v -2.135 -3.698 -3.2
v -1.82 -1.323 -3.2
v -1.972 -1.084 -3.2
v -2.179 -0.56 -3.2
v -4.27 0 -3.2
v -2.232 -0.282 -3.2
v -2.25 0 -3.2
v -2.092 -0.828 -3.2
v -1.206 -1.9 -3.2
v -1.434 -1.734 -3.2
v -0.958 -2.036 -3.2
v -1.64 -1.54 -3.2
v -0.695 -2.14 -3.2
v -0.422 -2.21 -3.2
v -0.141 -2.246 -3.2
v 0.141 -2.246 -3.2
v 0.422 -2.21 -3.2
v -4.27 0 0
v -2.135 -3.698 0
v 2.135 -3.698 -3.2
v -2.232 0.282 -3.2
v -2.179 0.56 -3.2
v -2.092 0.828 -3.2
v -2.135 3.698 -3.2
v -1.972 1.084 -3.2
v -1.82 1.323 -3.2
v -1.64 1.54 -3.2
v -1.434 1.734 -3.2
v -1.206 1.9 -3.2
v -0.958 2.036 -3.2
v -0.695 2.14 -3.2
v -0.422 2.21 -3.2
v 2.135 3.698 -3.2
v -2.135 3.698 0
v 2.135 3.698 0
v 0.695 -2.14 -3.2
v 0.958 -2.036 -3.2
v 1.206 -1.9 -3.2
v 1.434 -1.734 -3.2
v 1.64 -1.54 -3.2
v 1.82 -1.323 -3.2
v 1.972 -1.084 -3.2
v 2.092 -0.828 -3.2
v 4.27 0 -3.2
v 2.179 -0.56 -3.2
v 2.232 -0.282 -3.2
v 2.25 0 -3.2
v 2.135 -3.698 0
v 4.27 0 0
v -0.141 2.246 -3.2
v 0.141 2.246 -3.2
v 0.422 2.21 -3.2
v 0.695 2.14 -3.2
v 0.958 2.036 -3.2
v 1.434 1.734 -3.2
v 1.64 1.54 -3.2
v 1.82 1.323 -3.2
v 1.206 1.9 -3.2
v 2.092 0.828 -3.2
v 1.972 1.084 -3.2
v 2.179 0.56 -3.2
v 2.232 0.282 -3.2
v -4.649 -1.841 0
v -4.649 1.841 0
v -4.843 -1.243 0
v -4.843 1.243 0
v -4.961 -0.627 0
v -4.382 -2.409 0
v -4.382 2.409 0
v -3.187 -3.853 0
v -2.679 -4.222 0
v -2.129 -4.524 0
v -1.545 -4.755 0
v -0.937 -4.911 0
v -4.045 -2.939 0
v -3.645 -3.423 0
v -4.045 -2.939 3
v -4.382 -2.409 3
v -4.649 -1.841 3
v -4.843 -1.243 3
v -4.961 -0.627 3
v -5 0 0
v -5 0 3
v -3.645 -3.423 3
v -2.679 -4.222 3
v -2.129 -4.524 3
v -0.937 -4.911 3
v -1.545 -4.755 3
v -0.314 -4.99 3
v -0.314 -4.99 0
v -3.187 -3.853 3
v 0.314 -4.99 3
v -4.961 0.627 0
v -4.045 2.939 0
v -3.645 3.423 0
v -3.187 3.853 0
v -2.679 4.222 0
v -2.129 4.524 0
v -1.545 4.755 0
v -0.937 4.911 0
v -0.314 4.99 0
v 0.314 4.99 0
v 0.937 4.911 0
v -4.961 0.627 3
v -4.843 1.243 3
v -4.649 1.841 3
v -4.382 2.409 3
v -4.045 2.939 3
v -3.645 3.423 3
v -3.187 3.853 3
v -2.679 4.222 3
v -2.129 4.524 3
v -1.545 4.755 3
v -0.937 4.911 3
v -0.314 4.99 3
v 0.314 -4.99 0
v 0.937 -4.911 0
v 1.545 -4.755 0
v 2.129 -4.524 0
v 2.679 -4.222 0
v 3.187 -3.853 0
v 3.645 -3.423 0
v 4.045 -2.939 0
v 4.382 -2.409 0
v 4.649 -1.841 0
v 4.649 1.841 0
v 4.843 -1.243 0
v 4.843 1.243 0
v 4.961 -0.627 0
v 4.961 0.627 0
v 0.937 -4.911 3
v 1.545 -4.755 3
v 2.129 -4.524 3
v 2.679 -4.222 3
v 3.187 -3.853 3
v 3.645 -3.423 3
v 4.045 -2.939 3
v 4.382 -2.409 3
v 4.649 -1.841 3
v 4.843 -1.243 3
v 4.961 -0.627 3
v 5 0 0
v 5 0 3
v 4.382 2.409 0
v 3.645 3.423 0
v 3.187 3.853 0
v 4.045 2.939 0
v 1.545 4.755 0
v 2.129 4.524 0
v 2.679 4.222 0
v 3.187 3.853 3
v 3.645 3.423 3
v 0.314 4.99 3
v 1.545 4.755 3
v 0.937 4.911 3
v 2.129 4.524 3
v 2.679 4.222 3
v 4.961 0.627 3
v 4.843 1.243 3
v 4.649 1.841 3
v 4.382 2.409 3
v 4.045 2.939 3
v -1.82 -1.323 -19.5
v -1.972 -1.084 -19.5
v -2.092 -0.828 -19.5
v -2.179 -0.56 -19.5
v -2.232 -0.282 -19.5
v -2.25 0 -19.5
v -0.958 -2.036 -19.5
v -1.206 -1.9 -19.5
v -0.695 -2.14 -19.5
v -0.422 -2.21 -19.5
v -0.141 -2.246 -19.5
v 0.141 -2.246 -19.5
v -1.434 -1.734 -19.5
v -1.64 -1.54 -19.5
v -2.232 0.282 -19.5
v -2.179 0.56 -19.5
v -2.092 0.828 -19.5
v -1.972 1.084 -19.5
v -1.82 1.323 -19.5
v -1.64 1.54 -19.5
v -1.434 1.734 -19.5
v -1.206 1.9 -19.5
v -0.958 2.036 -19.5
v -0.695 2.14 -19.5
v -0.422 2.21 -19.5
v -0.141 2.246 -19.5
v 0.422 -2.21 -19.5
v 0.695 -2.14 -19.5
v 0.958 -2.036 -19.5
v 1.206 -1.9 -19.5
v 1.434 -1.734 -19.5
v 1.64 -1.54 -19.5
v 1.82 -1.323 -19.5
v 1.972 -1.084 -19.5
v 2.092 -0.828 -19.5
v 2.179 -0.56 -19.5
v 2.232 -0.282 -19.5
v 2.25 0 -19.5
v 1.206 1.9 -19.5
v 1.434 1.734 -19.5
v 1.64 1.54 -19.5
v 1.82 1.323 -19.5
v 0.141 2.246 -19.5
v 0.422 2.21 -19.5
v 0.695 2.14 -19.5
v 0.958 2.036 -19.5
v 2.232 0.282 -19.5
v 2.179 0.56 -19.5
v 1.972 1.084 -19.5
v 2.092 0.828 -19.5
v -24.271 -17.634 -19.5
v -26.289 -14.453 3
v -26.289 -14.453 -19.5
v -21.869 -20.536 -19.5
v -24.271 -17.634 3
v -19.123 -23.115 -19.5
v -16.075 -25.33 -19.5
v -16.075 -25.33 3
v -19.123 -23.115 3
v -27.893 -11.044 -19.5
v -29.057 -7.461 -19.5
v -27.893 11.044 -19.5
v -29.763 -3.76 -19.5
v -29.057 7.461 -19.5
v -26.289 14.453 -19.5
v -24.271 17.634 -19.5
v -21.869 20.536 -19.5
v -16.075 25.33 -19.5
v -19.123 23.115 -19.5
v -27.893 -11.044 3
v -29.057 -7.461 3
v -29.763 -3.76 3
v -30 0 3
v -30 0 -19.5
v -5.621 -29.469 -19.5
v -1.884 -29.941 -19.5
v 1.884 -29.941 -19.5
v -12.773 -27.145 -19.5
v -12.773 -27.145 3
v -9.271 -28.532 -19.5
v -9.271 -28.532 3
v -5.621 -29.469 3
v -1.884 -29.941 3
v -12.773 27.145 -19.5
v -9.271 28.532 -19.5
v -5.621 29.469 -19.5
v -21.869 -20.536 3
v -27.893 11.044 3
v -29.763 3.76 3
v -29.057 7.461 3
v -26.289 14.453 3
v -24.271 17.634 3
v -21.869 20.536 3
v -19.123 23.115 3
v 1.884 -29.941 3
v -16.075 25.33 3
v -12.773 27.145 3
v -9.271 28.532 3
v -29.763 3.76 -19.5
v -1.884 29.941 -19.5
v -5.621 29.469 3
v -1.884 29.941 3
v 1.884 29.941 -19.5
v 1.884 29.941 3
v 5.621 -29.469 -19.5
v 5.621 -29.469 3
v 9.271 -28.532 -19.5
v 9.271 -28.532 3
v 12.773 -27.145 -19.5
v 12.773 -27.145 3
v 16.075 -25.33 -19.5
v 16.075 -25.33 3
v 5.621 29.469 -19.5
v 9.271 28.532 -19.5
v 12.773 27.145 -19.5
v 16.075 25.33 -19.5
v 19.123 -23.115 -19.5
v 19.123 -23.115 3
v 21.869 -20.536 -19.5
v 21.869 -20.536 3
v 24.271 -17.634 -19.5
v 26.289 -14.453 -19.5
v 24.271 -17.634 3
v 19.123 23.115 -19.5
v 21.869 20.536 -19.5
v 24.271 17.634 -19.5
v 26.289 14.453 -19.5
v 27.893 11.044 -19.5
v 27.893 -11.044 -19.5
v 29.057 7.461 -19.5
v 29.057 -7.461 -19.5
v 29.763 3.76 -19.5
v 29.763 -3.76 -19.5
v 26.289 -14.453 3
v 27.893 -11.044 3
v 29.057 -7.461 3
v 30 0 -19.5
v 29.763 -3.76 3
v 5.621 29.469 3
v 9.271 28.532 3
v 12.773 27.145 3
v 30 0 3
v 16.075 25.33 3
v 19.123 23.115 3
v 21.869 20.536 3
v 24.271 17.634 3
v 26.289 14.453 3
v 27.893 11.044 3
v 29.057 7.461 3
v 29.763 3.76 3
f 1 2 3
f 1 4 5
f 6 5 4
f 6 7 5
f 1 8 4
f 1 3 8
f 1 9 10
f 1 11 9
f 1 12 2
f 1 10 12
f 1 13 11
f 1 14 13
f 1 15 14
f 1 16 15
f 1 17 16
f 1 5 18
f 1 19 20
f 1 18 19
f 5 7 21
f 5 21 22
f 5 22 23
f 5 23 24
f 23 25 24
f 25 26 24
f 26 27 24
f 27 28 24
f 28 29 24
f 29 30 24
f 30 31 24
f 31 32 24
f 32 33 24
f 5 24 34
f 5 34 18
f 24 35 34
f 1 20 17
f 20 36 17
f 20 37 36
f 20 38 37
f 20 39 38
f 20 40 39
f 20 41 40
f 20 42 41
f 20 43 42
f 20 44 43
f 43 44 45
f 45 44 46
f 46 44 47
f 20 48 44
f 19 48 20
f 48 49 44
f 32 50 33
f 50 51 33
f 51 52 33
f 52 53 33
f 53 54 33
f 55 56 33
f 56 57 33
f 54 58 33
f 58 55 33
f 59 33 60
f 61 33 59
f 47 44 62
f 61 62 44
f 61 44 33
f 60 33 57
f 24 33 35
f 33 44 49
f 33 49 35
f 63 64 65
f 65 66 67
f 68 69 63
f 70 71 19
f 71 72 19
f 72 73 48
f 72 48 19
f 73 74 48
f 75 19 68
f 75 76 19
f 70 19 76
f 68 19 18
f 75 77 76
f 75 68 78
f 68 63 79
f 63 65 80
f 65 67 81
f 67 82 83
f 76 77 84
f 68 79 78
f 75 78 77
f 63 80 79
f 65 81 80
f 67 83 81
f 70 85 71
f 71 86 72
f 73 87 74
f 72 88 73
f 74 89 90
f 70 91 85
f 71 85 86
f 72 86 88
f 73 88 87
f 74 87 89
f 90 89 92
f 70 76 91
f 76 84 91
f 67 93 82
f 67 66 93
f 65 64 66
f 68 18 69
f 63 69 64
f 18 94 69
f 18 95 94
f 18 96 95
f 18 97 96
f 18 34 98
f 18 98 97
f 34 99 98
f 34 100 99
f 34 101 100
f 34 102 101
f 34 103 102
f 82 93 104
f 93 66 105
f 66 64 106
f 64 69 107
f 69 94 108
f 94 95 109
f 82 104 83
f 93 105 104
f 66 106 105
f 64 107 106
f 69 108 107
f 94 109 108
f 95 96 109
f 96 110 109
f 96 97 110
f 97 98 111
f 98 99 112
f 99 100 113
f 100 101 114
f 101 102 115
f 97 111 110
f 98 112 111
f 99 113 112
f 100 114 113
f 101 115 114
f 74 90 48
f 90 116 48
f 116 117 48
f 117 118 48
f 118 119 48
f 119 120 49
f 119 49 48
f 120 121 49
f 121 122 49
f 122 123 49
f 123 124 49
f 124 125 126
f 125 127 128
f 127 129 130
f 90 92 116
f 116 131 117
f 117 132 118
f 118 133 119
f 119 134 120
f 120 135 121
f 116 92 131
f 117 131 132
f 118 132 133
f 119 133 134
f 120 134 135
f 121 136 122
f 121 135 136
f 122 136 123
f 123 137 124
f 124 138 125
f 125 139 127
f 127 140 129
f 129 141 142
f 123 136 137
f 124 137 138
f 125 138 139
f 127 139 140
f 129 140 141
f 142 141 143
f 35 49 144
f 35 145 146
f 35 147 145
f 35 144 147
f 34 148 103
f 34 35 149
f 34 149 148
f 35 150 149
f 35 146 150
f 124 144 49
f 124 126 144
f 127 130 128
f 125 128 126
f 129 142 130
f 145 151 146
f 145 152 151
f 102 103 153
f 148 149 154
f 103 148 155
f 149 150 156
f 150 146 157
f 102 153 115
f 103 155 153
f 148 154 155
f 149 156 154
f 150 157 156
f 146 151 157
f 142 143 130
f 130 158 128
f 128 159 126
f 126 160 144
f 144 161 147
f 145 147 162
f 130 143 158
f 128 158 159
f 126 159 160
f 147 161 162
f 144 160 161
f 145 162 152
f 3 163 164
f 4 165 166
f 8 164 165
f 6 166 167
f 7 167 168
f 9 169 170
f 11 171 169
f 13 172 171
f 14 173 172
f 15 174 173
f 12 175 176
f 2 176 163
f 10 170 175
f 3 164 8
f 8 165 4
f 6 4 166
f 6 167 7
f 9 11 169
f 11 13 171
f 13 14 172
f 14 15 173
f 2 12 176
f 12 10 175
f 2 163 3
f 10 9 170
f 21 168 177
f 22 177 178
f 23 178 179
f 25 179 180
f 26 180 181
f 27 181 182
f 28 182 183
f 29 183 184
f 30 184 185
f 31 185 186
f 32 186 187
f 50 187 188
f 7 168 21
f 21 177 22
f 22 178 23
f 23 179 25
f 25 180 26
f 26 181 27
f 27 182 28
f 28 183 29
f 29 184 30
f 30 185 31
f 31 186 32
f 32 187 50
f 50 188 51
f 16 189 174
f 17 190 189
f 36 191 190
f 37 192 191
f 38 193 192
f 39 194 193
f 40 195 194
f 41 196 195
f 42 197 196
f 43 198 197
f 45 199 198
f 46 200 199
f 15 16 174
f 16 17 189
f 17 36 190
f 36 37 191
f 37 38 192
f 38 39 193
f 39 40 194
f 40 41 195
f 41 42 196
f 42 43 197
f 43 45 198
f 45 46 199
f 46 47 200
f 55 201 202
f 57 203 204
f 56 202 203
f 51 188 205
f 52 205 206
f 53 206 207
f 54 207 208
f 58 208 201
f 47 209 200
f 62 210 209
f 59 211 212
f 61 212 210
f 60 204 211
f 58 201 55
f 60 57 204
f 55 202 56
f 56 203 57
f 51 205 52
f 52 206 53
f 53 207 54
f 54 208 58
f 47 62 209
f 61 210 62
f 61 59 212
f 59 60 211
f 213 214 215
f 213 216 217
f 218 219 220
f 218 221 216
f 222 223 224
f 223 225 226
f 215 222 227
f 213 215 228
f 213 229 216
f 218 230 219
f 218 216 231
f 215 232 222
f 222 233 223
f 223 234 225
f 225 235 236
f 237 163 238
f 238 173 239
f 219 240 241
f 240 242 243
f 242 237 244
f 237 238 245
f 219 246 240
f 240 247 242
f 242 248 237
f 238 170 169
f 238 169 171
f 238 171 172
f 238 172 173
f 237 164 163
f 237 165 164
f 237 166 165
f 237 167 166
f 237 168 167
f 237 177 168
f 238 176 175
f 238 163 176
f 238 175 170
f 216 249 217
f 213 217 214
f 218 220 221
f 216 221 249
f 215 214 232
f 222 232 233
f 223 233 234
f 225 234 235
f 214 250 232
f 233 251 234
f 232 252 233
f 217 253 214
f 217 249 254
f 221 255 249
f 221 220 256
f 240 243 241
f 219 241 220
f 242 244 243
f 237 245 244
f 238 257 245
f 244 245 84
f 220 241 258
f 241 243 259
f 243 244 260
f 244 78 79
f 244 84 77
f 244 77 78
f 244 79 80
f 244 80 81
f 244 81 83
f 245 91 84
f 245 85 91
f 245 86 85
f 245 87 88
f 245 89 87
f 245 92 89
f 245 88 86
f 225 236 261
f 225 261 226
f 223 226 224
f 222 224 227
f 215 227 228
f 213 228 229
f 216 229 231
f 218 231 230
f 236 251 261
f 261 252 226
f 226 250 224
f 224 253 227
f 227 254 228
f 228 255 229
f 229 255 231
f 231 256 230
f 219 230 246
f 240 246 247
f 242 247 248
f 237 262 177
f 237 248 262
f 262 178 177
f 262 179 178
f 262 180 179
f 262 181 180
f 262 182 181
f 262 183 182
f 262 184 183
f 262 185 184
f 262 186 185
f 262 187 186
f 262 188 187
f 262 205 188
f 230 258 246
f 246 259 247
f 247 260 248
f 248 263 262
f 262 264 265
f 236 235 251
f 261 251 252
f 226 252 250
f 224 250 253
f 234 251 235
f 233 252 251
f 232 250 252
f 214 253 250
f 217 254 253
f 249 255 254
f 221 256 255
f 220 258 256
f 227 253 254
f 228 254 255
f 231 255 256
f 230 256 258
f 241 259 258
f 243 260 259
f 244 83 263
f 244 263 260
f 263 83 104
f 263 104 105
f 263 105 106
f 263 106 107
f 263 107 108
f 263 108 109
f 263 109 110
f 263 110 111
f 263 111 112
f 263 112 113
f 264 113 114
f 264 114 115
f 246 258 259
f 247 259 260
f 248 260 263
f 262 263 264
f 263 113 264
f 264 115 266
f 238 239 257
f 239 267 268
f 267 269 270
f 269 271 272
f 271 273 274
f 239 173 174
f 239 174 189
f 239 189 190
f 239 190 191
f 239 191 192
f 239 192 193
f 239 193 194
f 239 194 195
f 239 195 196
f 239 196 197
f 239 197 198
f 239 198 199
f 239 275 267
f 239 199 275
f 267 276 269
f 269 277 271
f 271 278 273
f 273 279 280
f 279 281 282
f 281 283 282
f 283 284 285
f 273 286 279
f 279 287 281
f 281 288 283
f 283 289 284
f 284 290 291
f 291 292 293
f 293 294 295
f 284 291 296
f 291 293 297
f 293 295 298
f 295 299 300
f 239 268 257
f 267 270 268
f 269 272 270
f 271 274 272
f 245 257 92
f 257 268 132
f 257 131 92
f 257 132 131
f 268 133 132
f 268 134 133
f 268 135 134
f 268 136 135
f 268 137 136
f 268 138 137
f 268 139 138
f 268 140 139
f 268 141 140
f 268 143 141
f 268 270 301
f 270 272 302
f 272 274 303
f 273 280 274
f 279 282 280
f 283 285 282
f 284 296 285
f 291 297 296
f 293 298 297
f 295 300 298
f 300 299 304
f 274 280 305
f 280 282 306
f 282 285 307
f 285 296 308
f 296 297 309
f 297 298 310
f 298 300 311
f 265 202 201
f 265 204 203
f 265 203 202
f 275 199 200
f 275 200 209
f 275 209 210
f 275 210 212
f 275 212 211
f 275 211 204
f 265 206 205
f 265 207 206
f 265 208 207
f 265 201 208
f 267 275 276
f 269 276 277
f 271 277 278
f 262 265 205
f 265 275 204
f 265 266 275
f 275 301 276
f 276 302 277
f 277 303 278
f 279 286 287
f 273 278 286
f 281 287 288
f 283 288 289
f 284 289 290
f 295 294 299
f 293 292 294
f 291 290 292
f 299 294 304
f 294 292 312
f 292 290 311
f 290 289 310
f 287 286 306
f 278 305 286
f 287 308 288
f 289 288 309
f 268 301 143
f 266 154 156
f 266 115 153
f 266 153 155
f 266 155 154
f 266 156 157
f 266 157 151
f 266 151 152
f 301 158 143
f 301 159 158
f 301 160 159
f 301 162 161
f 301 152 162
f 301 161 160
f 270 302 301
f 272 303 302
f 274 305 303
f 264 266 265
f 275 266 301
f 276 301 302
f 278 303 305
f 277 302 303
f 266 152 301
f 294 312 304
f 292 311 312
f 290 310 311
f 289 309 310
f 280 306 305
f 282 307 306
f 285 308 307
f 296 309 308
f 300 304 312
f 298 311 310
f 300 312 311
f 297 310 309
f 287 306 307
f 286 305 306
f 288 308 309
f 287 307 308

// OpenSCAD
$fn = 50;

difference() {
	union() {
		translate(v = [0, 0, -19.5]) {
			cylinder(h = 22.5, r = 30.0);
		}
	}
	union() {
		translate(v = [0, 0, 0]) {
			rotate(a = [0, 0, 0]) {
				difference() {
					union() {
						translate(v = [0, 0, -3.2]) {
							linear_extrude(height = 3.2) {
								polygon(points = [[4.2698, 0.0], [2.1349000000000005, 3.697755269078796], [-2.134899999999999, 3.6977552690787965], [-4.2698, 5.228996902999369e-16], [-2.134900000000002, -3.6977552690787956], [2.1348999999999974, -3.697755269078798]]);
							}
						}
					}
					union();
				}
			}
		}
		#cylinder(h = 3, r = 5.0);
		#translate(v = [0, 0, -100.0]) {
			cylinder(h = 200, r = 2.25);
		}
	}
}
